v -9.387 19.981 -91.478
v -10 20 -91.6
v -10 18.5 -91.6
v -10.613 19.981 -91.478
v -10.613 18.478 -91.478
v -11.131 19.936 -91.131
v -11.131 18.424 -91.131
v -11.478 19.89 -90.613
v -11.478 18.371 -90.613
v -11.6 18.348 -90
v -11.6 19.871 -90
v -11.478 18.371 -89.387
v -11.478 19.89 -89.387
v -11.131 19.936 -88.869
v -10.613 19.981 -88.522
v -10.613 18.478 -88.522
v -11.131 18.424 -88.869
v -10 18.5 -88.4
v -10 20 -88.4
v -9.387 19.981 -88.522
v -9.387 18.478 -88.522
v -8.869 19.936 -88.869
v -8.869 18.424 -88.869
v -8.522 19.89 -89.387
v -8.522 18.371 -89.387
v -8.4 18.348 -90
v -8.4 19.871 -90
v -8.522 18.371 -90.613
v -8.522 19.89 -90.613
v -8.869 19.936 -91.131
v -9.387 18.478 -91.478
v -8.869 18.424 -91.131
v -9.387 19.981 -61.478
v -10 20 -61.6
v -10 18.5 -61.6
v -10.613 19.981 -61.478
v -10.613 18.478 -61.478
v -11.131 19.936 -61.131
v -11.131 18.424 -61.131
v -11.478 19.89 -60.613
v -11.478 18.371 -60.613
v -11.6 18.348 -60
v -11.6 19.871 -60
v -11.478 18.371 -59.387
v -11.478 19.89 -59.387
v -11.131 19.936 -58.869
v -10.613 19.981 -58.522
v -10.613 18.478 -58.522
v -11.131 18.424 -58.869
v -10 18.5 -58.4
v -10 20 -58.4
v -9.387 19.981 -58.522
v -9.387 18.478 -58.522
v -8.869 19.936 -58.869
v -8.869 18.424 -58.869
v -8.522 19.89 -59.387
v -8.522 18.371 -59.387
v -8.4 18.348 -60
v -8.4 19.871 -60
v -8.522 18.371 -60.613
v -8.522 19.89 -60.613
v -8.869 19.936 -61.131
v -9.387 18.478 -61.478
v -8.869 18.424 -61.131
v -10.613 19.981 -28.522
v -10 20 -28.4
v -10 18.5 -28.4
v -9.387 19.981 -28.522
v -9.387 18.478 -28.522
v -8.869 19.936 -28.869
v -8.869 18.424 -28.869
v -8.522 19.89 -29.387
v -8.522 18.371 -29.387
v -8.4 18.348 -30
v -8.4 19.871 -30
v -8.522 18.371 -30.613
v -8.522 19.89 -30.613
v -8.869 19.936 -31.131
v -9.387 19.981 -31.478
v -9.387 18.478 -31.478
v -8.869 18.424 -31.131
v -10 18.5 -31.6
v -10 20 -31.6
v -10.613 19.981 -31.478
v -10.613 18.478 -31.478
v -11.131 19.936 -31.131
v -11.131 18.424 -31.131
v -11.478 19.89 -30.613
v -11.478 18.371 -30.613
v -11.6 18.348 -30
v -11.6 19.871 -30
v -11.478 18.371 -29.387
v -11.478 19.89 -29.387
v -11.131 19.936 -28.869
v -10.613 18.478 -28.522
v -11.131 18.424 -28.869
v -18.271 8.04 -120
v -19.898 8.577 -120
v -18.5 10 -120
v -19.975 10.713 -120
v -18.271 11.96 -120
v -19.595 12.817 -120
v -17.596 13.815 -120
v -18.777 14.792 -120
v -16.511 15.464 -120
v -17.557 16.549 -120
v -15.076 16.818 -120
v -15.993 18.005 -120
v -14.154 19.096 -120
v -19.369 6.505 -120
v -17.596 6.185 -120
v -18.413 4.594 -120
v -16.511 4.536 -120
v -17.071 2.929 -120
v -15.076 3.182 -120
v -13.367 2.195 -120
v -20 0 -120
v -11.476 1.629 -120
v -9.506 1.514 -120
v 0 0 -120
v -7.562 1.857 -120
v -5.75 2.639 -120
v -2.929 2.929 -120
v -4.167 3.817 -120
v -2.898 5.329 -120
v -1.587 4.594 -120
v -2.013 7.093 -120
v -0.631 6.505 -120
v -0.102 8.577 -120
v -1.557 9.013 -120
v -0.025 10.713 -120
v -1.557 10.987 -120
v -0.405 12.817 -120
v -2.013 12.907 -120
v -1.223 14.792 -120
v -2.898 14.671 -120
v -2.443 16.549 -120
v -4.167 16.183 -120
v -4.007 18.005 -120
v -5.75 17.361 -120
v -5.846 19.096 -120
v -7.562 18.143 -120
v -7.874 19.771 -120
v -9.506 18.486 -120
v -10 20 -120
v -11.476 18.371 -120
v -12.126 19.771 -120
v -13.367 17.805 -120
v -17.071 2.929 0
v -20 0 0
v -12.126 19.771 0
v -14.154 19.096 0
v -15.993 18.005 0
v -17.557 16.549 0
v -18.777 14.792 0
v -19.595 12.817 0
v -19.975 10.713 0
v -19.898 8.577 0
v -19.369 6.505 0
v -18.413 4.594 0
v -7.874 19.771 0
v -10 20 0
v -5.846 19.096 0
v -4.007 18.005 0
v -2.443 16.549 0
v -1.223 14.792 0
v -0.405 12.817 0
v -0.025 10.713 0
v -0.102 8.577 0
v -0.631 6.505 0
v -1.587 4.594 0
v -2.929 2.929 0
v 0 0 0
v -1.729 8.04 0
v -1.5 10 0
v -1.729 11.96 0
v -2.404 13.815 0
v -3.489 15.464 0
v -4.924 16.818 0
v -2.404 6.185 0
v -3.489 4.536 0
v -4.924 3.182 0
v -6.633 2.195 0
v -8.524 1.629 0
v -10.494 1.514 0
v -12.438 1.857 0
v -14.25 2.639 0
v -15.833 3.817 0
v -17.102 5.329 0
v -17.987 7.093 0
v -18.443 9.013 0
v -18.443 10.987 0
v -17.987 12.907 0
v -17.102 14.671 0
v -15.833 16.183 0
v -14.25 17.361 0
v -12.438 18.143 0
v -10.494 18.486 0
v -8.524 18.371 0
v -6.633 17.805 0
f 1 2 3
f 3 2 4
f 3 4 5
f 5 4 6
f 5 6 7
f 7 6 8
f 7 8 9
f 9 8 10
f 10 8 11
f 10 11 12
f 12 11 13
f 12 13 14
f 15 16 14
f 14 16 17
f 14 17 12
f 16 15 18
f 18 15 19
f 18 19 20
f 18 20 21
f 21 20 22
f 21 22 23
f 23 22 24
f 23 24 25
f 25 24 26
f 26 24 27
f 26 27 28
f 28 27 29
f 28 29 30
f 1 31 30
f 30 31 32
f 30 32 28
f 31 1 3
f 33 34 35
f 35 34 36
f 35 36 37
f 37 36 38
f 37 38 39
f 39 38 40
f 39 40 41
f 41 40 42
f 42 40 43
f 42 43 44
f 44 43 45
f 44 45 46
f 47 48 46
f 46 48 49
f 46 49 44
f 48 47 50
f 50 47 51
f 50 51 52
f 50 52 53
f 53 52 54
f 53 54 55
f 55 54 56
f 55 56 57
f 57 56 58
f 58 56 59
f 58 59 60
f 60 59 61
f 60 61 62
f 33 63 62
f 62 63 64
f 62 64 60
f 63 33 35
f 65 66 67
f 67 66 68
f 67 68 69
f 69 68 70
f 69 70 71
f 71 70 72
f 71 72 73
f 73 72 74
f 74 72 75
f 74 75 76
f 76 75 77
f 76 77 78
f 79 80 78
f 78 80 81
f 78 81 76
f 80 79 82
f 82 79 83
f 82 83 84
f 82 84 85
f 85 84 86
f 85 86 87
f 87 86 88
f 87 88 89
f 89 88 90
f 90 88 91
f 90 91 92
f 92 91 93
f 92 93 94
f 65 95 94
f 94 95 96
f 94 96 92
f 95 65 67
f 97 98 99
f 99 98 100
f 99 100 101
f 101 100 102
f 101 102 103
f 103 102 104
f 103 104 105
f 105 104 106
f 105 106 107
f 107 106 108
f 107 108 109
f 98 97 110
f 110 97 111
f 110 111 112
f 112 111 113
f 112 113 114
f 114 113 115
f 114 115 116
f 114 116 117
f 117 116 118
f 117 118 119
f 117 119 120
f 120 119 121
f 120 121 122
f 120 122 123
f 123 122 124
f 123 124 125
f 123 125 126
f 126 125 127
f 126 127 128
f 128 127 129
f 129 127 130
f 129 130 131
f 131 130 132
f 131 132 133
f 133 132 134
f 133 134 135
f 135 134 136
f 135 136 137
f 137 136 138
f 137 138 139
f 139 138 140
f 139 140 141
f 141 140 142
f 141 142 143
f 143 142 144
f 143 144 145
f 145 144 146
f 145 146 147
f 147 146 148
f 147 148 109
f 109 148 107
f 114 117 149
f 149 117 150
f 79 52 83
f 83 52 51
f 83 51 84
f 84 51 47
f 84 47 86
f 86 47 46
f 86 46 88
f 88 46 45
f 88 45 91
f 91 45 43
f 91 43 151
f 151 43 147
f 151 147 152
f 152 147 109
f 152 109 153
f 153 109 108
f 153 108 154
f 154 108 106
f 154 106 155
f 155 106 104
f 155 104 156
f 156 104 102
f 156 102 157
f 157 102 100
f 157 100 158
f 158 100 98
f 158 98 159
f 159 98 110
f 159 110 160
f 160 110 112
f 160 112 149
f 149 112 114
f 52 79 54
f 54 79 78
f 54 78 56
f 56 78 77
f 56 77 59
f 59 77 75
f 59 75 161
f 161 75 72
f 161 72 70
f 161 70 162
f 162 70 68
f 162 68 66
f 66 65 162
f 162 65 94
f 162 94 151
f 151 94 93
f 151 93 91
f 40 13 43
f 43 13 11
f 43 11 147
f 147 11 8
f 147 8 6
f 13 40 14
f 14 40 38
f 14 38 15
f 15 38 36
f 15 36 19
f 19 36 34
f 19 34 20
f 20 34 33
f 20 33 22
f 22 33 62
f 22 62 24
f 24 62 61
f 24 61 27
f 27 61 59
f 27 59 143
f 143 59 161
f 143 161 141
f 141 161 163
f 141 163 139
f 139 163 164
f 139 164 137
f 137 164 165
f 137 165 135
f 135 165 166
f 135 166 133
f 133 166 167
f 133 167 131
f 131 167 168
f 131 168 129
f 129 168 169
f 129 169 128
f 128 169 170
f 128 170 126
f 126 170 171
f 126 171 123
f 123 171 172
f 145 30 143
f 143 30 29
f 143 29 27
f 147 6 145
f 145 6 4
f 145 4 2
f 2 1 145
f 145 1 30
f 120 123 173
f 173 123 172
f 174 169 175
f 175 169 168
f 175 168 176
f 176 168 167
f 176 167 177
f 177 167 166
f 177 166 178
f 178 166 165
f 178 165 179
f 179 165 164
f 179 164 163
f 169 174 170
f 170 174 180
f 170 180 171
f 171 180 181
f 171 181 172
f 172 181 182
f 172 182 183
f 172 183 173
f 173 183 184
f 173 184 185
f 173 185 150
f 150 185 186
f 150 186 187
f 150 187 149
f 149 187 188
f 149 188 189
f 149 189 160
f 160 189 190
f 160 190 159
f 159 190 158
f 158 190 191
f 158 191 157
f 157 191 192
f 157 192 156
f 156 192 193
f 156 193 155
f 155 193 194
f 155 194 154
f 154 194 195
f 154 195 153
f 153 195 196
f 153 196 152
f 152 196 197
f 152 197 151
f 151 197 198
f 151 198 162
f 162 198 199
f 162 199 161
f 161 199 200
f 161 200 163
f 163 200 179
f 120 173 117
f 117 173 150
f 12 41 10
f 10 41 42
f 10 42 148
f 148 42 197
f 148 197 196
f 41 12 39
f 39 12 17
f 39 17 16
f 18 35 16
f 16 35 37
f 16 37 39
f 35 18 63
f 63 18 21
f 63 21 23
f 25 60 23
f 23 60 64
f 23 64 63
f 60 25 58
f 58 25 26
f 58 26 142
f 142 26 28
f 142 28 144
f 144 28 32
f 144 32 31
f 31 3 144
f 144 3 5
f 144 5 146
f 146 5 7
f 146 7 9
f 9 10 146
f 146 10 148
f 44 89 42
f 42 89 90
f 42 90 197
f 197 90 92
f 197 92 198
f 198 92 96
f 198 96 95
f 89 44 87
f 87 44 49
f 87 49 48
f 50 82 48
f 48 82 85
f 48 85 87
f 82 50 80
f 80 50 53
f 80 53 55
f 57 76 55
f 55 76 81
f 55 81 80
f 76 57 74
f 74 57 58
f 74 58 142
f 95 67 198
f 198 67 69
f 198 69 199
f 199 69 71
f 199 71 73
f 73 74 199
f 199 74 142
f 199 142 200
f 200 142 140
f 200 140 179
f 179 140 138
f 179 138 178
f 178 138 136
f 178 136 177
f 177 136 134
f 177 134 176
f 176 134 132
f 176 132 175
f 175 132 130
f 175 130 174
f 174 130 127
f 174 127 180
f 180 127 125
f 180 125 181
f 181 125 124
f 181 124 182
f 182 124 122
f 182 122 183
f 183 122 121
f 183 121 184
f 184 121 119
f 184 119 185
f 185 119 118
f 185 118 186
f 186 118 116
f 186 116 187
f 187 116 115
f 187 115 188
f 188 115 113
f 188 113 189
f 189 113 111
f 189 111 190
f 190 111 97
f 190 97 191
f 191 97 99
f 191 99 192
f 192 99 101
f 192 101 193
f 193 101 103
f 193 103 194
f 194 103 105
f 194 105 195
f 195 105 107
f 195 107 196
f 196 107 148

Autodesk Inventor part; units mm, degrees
ref_plane "YZ Plane" through (0, 0, 0) normal (1, 0, 0) x (0, 1, 0)
ref_plane "XZ Plane" through (0, 0, 0) normal (0, 1, 0) x (-1, 0, 0)
ref_plane "XY Plane" through (0, 0, 0) normal (0, 0, 1) x (1, 0, 0)
sketch "Sketch1" plane through (0, 0, 0) normal (0, 1, 0) x (-1, 0, 0)
  line L0 (0, 0) -> (20, 0)
  line L1 (20, 0) -> (20, -120)
  line L2 (20, -120) -> (0, -120)
  line L3 (0, -120) -> (0, 0)
  dimension "d0" = 20
  dimension "d1" = 120
extrude "Extrusion1" add sketch "Sketch1" along normal blind 20
sketch "Sketch2" plane through (0, 20, 0) normal (0, 1, 0) x (1, 0, 0)
  line L0 (-20, 120) -> (-20, 0) projected
  line L1 (0, 0) -> (0, 120) projected
  line L2 (-20, 0) -> (0, 0)
  line L3 (0, 0) -> (0, 120)
  line L4 (0, 120) -> (-20, 120)
  line L5 (-20, 120) -> (-20, 0)
  line L6 (0, 120) -> (-20, 120) projected
  line L7 (-20, 0) -> (-10, 0)
  line L8 (-10, 0) -> (-10, 120)
  line L9 (-10, 120) -> (-20, 120)
  line L10 (-20, 120) -> (-20, 0)
  line L11 (-10, 0) -> (-10, 60)
  line L12 (-10, 60) -> (-10, 90)
  line L13 (-10, 90) -> (-10, 30)
  circle A0 centre (-10, 30) radius 1.6
  circle A1 centre (-10, 60) radius 1.6
  circle A2 centre (-10, 90) radius 1.6
  dimension "d23" = 0
  dimension "d4" = 60
  dimension "d5" = 30
  dimension "d6" = 60
  dimension "d7" = 3.2
  dimension "d8" = 3.2
  dimension "d9" = 3.2
extrude "Extrusion2" cut sketch "Sketch2" against normal blind 35.5625 contours A2 L8 | L8 A2 | A0 L8 | L8 A0 | A1 L8 | L8 A1
sketch "Sketch3" plane through (-20, 0, 0) normal (0, 0, 1) x (1, 0, 0)
  line L0 (0, 20) -> (20, 20) projected
  line L1 (0, 20) -> (20, 0)
  line L2 (20, 0) -> (20, 20)
  line L3 (0, 0) -> (20, 0) projected
  line L4 (20, 20) -> (0, 0)
  circle A0 centre (10, 10) radius 10
  line L5 (0, 0) -> (20, 0)
  line L6 (20, 0) -> (20, -2)
  line L7 (20, -2) -> (0, -2)
  line L8 (0, -2) -> (0, 0)
  line L9 (0, 0) -> (0, 20) projected
  line L10 (0, 20) -> (20, 20)
  line L11 (20, 20) -> (20, 0)
  line L12 (20, 0) -> (0, 0)
  line L13 (0, 0) -> (0, 20)
  point P0 (0, 10)
  point P1 (2.9289, 2.9289)
  point P2 (10, 20)
  point P3 (20, 10)
  point P4 (17.0711, 2.9289)
  dimension "d12" = 2
extrude "Extrusion3" cut sketch "Sketch3" against normal blind 223.2 contours L0 A0 L1 | L1 A0 L9 | L0 L4 A0 | A0 L4 L9 | L2 A0 L4 | L2 L1 A0
sketch "Sketch4" plane through (-20, 0, 0) normal (0, 0, 1) x (1, 0, 0)
  arc A0 (17.0711, 2.9289) -> (2.9289, 2.9289) centre (10, 10) ccw projected
  circle A1 centre (10, 10) radius 10
  circle A2 centre (10, 10) radius 8.5
  point P0 (20, 0)
  dimension "d15" = 17
extrude "Extrusion4" cut sketch "Sketch4" against normal blind 267.3375 contours A2
sketch "Sketch6" plane through (0, 0, 0) normal (0, -1, 0) x (1, 0, 0)
  circle A0 centre (-10, -30) radius 1.6 projected
  circle A1 centre (-10, -30) radius 1.6
  circle A2 centre (-10, -60) radius 1.6 projected
  circle A3 centre (-10, -60) radius 1.6
  circle A4 centre (-10, -90) radius 1.6 projected
  circle A5 centre (-10, -90) radius 1.6
  point P0 (0, 0)
extrude "Extrusion6" add sketch "Sketch6" against normal blind 3
sketch "Sketch7" plane through (-20, 0, 0) normal (0, 0, 1) x (1, 0, 0)
  circle A0 centre (10, 10) radius 8.5 projected
  circle A1 centre (10, 10) radius 8.5
  point P0 (20, 0)
extrude "Extrusion7" add sketch "Sketch7" against normal blind 120
sketch "Sketch8" plane through (-20, 0, 0) normal (0, 0, 1) x (1, 0, 0)
  arc A0 (17.0711, 2.9289) -> (2.9289, 2.9289) centre (10, 10) ccw projected
  circle A1 centre (10, 10) radius 8.5
  point P0 (20, 0)
  dimension "d24" = 17
extrude "Extrusion8" cut sketch "Sketch8" against normal blind 241.95
properties part number "Cylinder"
